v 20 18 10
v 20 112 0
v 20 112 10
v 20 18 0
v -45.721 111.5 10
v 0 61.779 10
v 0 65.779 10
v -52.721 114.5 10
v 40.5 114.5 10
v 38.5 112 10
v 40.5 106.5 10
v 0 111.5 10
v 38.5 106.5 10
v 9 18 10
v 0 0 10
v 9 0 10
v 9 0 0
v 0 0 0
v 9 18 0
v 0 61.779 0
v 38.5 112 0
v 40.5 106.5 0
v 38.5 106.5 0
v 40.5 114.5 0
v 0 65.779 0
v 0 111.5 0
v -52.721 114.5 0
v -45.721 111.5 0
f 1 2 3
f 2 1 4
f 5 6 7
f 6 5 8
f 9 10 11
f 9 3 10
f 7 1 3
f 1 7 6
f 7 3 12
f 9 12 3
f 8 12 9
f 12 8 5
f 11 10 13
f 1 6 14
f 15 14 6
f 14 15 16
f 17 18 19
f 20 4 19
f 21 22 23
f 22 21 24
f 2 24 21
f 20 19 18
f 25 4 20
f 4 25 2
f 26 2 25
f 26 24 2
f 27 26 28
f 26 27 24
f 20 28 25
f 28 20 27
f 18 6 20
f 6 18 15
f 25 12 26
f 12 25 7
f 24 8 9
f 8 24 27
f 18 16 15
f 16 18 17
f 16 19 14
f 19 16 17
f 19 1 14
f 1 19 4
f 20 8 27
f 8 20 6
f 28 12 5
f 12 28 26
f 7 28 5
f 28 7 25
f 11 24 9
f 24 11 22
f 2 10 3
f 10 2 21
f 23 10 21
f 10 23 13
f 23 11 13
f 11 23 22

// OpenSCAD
difference() {
    cube([20,  114.5, 10]);
    translate([9, -2, -1])
        cube([20,  20, 20]);
}
translate([0, 112, 0])
    cube([40.5,  2.5, 10]);
translate([38.5, 106.5, 0])
    cube([2,  8, 10]);
difference() {
    translate([-60, 54.5, 0])
        triangle(10);
    translate([-53, 51.5, -1])
        triangle(12);
}
module triangle(z) {
    difference() {
        cube([60, 60, z]);
        translate([0, -60, -1])
            rotate([0, 0, 45])
            cube([90, 90, z + 2]);
    }
}
